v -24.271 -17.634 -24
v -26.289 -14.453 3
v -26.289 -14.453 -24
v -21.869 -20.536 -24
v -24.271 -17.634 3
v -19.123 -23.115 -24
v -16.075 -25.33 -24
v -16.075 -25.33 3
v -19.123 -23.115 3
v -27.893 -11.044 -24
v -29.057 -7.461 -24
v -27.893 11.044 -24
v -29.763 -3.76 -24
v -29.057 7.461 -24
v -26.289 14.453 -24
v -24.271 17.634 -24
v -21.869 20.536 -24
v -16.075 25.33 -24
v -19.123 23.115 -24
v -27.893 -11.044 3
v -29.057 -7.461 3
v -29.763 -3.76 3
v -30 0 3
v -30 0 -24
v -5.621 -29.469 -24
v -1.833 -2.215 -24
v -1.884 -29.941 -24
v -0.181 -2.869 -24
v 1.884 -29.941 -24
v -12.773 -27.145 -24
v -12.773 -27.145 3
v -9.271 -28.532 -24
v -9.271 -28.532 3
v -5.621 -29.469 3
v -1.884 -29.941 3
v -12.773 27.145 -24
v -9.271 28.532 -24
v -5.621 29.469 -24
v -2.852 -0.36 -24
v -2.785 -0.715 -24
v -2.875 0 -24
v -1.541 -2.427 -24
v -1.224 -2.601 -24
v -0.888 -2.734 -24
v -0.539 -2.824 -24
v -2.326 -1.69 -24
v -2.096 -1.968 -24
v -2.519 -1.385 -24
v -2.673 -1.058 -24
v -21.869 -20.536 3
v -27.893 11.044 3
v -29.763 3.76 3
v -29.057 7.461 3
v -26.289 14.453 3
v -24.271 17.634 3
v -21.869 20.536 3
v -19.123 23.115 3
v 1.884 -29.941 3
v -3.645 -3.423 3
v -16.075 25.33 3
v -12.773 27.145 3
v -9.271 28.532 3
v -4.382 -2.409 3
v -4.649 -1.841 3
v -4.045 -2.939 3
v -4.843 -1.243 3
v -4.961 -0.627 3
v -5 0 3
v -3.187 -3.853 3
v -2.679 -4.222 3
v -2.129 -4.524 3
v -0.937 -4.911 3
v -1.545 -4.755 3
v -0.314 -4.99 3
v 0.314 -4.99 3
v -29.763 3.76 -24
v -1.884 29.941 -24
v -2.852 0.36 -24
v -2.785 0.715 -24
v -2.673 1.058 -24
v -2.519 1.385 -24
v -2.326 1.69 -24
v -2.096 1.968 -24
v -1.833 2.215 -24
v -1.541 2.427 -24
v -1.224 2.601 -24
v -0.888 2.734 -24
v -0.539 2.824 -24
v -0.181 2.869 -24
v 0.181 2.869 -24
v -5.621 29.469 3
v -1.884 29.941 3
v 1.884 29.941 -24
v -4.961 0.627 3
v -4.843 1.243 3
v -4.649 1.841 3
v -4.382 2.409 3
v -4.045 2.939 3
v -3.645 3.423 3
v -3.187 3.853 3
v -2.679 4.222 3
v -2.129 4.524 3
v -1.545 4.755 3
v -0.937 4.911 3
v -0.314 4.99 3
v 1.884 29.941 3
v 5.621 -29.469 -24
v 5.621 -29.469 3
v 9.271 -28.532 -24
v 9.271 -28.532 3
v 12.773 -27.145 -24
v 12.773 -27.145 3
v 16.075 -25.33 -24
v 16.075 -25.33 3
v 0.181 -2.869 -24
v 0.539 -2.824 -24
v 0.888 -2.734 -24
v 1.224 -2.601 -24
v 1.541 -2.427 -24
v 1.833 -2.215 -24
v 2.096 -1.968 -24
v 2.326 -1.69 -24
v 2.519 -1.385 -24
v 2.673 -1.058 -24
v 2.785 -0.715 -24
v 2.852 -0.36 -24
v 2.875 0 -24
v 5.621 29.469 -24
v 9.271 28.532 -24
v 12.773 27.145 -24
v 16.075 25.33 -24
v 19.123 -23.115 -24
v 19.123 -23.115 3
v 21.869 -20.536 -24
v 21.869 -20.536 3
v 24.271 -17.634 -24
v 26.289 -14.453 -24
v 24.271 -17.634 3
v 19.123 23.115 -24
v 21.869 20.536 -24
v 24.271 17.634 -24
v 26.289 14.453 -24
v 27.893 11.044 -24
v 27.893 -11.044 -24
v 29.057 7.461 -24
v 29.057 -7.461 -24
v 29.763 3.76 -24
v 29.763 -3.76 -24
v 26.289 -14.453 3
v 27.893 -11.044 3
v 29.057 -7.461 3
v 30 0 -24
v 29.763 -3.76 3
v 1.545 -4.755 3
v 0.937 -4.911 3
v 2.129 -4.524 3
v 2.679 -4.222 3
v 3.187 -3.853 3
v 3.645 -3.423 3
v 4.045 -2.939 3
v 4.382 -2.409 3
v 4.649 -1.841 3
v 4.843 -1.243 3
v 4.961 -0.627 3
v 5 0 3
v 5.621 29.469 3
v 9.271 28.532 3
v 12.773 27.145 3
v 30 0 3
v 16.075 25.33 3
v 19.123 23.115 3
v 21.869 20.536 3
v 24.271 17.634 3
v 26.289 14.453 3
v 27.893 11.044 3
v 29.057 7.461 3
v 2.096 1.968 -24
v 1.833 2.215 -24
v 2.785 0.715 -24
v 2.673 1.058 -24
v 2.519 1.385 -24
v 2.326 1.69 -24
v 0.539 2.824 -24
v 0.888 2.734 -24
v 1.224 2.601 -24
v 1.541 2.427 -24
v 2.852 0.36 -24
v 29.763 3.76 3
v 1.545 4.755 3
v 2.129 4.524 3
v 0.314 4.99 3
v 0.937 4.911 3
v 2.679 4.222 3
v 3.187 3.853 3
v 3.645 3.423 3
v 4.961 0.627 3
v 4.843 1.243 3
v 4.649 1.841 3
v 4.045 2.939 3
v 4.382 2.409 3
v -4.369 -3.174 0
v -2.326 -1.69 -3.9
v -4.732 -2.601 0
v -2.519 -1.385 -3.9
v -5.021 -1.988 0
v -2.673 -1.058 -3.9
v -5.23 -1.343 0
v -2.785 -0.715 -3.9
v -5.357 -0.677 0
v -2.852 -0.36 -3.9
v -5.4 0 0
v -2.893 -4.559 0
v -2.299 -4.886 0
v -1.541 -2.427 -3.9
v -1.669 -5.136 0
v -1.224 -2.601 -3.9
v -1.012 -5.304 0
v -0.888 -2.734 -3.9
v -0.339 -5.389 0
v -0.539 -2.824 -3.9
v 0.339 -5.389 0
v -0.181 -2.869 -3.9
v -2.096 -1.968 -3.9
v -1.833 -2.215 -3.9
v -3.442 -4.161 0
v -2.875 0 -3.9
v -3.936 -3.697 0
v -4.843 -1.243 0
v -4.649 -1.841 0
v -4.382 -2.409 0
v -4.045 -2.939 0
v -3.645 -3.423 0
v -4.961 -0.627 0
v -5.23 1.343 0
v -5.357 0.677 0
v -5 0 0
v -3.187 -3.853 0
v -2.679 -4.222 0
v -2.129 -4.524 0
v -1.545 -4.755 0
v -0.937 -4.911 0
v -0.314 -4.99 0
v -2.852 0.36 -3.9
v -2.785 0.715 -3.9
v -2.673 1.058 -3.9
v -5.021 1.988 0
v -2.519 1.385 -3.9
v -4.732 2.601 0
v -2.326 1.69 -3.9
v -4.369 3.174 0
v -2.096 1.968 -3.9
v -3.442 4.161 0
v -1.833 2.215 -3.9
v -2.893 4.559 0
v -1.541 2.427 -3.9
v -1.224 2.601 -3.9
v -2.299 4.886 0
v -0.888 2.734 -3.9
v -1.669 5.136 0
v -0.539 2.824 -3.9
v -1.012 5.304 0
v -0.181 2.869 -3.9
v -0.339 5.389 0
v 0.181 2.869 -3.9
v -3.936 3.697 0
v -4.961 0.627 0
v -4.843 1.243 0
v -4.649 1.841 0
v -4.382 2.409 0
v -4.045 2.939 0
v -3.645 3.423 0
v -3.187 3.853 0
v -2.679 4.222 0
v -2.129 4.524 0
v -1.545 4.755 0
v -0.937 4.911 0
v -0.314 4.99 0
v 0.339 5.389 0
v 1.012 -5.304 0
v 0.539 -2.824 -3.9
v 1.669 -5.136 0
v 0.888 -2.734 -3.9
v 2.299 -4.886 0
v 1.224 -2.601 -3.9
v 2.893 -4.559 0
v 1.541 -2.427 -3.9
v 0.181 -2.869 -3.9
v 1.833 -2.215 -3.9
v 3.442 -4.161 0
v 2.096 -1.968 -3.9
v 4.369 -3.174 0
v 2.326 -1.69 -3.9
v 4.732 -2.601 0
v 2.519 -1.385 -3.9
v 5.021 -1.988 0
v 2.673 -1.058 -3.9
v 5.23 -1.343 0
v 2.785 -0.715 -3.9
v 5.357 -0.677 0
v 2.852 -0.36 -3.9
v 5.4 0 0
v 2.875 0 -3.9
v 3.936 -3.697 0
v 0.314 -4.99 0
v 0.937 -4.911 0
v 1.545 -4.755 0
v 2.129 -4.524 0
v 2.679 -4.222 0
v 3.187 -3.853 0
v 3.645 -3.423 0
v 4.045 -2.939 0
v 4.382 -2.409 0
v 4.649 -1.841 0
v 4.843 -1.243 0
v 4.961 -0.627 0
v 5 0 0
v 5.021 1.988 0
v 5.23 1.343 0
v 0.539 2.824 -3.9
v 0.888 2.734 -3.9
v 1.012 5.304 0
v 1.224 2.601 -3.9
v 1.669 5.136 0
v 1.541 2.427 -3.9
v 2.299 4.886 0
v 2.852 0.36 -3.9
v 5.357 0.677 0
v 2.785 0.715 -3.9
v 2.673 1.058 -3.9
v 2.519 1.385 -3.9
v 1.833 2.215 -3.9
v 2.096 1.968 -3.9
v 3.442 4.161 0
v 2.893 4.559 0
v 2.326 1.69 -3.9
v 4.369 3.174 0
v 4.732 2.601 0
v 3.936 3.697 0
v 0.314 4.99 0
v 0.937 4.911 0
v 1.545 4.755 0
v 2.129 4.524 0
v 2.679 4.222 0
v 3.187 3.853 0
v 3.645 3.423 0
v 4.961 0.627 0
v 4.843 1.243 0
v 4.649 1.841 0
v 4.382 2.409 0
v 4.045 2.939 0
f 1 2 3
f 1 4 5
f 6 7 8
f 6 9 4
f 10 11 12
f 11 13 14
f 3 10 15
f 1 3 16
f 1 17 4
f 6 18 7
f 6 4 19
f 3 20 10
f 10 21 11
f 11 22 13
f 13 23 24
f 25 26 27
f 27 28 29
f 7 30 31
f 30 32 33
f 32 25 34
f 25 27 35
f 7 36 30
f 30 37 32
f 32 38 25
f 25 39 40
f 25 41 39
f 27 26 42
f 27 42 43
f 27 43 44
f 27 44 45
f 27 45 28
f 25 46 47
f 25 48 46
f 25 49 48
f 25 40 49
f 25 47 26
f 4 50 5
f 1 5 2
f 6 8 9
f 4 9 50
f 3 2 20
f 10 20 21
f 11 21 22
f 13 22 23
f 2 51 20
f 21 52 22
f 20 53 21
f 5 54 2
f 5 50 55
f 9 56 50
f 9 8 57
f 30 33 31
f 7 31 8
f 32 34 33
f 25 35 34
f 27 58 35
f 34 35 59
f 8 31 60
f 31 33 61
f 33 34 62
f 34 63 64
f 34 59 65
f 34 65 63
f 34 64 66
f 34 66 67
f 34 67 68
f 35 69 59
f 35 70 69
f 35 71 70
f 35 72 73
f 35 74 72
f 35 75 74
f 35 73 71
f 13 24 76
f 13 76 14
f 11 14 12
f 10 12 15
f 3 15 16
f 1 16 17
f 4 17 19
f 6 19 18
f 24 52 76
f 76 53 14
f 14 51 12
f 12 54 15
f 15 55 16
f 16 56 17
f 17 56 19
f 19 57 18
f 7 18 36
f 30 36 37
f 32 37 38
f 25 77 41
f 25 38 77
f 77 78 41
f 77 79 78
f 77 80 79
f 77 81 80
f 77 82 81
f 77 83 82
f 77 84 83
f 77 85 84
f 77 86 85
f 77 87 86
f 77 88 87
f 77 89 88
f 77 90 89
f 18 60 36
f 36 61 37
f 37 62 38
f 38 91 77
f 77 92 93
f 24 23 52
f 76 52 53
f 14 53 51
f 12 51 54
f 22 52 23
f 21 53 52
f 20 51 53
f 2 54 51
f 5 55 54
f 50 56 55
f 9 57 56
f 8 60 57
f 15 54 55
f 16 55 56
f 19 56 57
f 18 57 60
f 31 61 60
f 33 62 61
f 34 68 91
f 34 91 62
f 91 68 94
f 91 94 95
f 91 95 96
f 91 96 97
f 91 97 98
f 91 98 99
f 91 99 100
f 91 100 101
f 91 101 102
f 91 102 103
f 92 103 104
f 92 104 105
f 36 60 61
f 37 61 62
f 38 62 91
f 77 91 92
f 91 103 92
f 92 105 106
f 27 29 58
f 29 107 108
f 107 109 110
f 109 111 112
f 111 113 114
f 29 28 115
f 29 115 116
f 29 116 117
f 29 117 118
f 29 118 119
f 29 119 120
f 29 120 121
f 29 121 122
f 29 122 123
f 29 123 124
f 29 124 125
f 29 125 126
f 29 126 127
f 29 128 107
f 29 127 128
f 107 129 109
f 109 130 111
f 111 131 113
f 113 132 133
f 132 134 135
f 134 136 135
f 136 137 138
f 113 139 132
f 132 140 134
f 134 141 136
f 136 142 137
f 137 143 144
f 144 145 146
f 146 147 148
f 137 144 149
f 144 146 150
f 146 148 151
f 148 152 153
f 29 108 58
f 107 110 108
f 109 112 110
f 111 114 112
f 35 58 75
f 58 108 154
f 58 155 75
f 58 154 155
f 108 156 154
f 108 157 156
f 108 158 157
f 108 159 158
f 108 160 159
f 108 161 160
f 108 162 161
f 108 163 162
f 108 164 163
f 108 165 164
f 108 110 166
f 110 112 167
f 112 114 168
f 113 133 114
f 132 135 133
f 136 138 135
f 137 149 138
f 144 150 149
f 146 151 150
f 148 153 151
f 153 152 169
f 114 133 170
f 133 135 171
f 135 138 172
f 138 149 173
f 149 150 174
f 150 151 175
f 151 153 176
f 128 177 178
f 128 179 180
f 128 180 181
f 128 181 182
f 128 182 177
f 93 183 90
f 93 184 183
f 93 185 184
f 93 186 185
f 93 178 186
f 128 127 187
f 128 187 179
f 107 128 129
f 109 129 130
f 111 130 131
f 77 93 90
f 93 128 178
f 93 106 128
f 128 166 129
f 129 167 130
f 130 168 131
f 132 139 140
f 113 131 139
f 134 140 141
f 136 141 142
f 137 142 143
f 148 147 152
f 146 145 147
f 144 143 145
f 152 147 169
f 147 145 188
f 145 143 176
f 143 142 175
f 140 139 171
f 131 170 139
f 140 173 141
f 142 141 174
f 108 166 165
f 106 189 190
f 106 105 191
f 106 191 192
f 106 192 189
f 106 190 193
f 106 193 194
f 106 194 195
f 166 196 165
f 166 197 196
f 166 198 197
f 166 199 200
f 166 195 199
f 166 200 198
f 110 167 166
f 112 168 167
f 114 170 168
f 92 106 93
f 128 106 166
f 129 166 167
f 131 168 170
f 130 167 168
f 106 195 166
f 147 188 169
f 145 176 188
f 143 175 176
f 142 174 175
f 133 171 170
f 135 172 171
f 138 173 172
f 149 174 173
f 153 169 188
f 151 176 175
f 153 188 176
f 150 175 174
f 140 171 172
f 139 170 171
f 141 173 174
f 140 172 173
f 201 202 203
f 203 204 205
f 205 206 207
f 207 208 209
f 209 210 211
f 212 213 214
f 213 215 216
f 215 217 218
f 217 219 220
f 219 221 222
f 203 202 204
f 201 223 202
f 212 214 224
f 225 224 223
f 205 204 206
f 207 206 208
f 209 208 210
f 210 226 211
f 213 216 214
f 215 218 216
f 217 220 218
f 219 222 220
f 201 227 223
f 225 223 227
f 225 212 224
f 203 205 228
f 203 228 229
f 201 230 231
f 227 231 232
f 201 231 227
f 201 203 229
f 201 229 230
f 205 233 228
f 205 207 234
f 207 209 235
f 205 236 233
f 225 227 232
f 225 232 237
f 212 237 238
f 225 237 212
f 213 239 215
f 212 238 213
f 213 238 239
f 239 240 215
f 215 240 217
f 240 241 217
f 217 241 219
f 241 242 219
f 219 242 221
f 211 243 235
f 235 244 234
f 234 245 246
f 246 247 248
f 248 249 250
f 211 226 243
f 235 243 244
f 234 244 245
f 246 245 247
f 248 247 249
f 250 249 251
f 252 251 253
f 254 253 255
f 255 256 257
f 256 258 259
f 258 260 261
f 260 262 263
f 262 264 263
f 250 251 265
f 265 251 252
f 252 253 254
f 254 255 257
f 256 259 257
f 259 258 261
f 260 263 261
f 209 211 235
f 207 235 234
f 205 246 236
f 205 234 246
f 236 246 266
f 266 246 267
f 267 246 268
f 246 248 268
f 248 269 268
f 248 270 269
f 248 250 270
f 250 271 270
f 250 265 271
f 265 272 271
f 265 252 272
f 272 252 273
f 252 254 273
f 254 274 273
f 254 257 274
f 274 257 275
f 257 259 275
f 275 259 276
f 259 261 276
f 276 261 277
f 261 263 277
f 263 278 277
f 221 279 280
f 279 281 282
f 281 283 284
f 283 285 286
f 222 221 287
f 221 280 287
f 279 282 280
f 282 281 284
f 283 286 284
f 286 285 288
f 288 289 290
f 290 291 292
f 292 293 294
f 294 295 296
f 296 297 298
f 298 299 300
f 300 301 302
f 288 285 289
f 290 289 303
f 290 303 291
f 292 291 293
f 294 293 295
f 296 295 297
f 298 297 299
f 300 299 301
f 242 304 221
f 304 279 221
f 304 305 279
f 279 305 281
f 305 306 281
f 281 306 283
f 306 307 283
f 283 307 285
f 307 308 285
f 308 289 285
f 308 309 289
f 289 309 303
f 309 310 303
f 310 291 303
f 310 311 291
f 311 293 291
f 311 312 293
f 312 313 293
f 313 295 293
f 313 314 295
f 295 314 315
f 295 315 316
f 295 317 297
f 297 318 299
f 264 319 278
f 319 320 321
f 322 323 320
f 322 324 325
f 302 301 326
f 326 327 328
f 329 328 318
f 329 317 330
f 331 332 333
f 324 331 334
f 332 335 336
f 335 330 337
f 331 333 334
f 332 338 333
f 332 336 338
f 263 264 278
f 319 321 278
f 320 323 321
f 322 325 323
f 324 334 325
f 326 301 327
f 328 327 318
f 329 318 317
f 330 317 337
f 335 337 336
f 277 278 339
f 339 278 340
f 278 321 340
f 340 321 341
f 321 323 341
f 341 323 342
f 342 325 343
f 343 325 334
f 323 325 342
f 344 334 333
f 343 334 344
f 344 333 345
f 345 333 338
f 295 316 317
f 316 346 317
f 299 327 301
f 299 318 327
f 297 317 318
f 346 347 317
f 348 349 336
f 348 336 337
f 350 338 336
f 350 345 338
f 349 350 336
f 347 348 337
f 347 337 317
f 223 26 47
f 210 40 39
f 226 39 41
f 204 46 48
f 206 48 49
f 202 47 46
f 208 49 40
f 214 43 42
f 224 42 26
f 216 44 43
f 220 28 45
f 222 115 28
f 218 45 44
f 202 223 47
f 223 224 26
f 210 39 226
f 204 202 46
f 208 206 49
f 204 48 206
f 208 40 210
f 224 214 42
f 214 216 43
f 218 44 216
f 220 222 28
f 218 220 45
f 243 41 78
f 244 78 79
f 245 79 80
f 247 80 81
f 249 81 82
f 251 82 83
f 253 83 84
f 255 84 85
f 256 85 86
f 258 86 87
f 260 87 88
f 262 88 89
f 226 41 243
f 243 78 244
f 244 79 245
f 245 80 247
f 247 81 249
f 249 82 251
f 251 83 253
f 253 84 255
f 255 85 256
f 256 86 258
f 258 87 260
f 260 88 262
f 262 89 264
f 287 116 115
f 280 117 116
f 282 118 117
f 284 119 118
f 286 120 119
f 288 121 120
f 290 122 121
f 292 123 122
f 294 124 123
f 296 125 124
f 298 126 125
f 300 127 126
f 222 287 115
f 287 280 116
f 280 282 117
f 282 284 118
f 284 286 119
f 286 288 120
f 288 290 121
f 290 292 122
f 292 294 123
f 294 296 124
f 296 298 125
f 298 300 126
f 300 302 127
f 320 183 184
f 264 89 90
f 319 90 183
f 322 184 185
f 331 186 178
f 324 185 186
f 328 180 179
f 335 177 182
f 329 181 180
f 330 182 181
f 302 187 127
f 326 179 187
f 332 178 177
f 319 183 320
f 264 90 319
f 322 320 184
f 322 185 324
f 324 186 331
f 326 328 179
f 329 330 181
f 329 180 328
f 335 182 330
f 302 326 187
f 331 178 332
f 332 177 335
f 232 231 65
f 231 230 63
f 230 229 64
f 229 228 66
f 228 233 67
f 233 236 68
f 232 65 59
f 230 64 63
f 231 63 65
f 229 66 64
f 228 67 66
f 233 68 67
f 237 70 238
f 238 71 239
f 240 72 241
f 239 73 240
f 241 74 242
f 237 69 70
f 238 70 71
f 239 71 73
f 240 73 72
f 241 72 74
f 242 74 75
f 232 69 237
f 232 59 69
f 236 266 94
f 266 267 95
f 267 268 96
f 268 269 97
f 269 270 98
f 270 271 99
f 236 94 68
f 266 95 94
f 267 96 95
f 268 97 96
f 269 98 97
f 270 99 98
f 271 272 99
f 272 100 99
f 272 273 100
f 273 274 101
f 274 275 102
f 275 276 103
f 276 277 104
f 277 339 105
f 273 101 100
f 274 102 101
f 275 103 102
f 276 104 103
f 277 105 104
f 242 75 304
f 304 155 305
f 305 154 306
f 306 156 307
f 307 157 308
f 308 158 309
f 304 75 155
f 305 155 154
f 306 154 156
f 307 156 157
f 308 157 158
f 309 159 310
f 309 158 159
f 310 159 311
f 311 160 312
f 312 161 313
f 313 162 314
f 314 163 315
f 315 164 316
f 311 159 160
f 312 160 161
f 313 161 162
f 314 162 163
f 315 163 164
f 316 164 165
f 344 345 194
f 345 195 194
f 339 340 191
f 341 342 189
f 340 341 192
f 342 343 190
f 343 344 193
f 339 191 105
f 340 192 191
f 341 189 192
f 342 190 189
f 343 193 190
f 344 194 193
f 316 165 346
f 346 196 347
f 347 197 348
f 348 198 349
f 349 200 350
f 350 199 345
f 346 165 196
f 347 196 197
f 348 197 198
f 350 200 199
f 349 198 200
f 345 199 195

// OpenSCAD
$fn = 50;

difference() {
	union() {
		translate(v = [0, 0, -24.0]) {
			cylinder(h = 27, r = 30.0);
		}
		#translate(v = [0, 0, -27.0]) {
			cylinder(h = 27, r = 2.875);
		}
	}
	union() {
		translate(v = [0, 0, 0]) {
			rotate(a = [0, 0, 0]) {
				difference() {
					union() {
						translate(v = [0, 0, -27.0]) {
							cylinder(h = 27, r = 2.6);
						}
						translate(v = [0, 0, -3.9]) {
							cylinder(h = 3.9, r1 = 2.875, r2 = 5.4);
						}
						translate(v = [0, 0, -27.0]) {
							cylinder(h = 27, r = 2.875);
						}
						translate(v = [0, 0, -27.0]) {
							cylinder(h = 27, r = 2.6);
						}
					}
					union();
				}
			}
		}
		#cylinder(h = 3, r = 5.0);
	}
}
